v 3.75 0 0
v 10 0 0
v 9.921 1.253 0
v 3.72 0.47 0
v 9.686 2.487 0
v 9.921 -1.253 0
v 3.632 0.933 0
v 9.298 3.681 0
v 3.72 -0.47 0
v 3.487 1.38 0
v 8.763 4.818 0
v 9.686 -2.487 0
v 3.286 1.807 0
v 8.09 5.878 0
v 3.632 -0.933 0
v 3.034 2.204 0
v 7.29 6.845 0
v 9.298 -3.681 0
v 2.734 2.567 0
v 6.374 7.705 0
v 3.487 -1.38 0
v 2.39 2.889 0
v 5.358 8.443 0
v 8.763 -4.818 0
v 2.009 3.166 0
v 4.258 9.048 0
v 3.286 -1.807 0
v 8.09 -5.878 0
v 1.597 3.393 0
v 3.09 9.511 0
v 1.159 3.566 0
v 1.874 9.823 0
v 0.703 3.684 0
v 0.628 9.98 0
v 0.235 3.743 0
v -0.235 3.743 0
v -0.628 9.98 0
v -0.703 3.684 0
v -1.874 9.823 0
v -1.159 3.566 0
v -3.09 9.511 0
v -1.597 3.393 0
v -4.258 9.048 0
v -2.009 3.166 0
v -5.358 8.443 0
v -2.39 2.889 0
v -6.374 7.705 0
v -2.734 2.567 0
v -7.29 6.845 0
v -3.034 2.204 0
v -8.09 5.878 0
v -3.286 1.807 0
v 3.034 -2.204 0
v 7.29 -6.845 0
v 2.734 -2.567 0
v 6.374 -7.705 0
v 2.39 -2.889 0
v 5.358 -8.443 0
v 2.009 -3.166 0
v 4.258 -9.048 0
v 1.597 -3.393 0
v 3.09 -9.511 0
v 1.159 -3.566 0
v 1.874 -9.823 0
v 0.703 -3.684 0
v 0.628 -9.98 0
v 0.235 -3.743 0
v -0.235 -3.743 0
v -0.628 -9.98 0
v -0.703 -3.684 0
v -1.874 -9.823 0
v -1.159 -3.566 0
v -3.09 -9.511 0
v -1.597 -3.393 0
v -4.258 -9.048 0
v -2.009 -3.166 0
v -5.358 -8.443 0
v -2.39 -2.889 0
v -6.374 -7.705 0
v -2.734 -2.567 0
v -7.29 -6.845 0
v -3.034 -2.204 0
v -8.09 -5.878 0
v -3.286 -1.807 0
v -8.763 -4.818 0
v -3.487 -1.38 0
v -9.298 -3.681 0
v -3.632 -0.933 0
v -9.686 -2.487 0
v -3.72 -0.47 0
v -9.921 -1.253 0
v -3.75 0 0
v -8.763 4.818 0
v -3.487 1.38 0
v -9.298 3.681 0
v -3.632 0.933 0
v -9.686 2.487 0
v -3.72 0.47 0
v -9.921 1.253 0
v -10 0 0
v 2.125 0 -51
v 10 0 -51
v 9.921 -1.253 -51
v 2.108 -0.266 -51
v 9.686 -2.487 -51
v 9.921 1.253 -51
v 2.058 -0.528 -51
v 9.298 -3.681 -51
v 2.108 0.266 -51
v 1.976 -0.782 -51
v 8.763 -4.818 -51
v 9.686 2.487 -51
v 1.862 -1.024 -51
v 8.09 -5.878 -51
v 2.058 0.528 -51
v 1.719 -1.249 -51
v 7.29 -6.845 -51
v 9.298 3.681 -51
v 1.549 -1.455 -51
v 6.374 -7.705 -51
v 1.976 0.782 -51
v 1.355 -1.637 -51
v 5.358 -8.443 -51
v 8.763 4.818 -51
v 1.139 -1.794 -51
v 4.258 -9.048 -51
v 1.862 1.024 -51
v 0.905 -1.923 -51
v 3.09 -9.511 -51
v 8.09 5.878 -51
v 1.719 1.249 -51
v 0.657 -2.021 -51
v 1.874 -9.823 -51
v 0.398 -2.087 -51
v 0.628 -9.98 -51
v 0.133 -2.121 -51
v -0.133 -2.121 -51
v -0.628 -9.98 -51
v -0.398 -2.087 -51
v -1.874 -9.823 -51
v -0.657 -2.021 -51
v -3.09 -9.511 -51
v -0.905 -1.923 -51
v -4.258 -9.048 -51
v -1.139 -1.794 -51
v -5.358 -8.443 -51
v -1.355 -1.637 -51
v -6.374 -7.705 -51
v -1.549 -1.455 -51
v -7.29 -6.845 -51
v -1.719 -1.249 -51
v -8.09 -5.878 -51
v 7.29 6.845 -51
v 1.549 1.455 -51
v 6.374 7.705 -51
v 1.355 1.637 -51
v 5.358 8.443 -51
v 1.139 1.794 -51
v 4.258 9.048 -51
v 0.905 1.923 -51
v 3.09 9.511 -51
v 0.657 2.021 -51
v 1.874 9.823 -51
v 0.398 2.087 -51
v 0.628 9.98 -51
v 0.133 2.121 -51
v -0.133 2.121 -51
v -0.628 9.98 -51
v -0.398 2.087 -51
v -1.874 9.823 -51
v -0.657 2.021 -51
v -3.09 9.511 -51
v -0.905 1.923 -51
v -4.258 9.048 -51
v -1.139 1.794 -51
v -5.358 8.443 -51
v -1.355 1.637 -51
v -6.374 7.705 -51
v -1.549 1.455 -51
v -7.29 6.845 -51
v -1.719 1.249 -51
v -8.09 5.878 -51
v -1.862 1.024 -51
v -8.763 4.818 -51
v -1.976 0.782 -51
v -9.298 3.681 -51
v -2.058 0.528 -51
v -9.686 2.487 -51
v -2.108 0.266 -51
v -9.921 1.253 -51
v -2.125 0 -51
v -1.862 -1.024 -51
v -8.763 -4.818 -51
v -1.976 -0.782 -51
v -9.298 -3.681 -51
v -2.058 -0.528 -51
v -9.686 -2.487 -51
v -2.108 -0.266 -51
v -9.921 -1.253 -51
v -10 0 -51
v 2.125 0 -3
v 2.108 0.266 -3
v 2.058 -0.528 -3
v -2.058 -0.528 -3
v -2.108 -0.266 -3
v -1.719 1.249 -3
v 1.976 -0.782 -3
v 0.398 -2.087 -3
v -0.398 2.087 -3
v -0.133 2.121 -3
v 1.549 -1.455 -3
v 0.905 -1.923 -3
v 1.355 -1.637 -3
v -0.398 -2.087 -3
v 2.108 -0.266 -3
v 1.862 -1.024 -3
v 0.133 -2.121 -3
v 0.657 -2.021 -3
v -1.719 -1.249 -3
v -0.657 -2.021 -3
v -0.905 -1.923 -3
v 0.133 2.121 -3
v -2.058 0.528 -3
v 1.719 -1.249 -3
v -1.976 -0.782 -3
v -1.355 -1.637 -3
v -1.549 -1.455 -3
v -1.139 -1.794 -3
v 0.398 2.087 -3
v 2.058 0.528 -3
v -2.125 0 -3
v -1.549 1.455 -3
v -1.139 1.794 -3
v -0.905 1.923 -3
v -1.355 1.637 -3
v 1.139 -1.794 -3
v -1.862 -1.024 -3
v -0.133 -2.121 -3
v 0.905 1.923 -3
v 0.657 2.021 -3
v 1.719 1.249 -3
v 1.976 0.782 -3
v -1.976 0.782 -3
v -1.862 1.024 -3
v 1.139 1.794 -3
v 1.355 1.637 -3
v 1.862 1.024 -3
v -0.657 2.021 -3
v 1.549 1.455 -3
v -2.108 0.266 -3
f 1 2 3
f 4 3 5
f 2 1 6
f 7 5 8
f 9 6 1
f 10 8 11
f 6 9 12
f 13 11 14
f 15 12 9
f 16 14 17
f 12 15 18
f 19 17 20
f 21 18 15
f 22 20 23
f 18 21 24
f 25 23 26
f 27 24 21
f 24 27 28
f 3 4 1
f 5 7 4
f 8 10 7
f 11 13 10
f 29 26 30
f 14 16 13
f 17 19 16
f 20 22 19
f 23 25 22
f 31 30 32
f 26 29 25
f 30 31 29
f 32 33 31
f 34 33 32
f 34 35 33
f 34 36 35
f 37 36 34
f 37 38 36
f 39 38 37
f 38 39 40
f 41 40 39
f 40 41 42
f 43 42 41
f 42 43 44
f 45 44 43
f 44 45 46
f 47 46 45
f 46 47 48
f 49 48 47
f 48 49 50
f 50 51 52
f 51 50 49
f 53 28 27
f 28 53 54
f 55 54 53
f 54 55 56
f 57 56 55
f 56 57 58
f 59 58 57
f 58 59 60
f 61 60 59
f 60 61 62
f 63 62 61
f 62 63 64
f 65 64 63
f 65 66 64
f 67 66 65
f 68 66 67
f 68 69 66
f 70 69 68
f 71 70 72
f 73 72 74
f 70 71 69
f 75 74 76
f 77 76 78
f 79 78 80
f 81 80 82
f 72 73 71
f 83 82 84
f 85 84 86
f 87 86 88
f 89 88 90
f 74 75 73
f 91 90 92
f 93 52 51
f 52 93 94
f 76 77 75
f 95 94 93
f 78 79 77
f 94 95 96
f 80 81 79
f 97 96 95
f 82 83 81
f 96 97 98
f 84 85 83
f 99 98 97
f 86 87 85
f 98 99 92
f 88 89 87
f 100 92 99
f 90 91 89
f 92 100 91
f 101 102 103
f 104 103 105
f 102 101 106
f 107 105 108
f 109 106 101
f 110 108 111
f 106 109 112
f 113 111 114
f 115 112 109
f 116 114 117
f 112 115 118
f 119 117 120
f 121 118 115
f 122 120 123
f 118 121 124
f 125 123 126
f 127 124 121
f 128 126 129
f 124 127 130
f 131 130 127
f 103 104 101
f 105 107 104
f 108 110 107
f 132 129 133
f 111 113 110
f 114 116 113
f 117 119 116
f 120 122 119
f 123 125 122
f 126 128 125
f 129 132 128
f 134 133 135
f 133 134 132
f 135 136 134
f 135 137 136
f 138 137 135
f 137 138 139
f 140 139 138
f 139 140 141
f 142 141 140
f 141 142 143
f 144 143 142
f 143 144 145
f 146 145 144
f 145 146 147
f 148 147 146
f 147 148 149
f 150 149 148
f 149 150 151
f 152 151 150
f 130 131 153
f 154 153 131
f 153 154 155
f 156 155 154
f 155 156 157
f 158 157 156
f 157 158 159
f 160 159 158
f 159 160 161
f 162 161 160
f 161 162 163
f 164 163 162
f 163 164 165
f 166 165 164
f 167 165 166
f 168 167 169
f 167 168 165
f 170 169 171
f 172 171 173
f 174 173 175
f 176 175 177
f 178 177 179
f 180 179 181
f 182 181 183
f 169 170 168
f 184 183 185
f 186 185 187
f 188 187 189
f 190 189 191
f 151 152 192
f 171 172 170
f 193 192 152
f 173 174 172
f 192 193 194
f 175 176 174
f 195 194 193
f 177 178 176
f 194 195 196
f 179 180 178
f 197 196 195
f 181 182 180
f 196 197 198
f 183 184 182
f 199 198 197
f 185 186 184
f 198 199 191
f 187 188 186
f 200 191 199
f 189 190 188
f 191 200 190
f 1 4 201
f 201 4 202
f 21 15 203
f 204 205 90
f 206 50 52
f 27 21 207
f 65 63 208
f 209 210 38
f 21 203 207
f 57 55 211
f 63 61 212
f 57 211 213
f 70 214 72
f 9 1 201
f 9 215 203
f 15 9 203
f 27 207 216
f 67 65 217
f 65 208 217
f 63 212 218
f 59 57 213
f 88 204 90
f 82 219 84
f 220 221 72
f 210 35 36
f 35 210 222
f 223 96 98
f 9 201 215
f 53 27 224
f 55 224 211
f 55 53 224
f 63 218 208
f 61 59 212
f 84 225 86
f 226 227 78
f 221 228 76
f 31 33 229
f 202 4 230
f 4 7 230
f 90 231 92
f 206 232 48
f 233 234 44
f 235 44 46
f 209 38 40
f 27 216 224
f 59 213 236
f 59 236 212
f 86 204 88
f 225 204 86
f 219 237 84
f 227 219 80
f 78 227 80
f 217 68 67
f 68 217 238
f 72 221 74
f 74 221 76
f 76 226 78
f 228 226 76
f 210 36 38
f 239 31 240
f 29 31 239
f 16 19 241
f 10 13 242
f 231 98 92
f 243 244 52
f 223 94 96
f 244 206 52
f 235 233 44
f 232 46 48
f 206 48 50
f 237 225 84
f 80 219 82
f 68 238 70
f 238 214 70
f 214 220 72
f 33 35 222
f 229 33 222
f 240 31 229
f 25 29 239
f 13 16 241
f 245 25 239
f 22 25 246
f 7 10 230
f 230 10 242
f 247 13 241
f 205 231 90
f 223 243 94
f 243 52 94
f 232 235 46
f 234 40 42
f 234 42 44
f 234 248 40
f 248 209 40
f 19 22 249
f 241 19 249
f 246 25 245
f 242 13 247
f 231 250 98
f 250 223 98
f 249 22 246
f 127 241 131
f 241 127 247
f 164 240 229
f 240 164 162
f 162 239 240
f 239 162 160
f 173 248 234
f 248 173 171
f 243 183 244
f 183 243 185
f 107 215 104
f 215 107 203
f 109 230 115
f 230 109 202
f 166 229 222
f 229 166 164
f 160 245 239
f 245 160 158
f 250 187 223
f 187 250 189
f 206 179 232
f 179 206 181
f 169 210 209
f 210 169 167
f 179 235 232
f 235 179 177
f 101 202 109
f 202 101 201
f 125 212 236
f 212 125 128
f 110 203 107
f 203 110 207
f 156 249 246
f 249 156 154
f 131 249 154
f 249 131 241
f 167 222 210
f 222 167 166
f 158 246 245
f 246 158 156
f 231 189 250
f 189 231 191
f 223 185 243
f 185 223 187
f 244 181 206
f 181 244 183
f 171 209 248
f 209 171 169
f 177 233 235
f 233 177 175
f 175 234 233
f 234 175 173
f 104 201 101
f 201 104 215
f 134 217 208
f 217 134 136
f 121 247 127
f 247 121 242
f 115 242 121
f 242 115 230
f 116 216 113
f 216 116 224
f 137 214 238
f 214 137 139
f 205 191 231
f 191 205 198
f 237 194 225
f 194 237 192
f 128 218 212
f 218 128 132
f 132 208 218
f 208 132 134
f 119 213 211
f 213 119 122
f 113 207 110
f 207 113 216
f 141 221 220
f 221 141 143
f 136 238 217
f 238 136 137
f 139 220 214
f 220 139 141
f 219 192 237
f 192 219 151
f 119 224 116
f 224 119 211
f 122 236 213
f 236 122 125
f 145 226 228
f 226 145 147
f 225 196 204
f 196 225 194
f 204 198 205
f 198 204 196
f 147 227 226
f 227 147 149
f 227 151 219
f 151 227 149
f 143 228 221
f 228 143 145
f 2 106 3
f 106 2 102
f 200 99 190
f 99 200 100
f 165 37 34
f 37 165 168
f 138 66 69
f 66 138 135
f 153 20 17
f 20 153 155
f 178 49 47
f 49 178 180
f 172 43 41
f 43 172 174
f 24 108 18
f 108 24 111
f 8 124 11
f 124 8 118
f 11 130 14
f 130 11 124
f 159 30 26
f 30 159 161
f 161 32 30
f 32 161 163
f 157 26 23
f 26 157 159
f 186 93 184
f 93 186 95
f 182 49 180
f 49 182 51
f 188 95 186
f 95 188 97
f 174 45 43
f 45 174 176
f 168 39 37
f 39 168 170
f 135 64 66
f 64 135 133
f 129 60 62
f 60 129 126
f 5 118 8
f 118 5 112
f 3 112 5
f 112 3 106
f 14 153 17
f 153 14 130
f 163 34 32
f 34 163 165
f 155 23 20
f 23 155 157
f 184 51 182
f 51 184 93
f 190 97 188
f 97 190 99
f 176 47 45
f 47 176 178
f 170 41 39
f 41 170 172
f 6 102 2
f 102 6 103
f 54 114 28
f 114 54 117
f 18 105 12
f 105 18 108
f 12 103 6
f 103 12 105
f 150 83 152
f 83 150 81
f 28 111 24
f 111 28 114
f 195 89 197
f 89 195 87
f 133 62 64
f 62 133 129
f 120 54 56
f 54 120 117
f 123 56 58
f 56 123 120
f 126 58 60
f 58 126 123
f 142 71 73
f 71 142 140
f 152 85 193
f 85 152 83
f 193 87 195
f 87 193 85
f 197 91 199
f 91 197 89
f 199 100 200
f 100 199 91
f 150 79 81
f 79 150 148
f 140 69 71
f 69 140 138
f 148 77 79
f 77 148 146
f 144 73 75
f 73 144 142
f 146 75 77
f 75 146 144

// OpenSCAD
$fn = 50;


difference() {
	union() {
		translate(v = [0, 0, -51.0000000000]) {
			cylinder(h = 51, r = 10.0000000000);
		}
		cylinder(h = 0, r = 20.0000000000);
	}
	union() {
		translate(v = [0, 0, 0]) {
			rotate(a = [0, 0, 0]) {
				difference() {
					union() {
						#translate(v = [0, 0, -51.0000000000]) {
							cylinder(h = 51, r = 2.0000000000);
						}
						#translate(v = [0, 0, -3]) {
							cylinder(h = 3, r = 10.0000000000, r1 = 2.1250000000, r2 = 3.7500000000);
						}
						#translate(v = [0, 0, -51.0000000000]) {
							cylinder(h = 51, r = 2.1250000000);
						}
						#translate(v = [0, 0, -51.0000000000]) {
							cylinder(h = 51, r = 2.0000000000);
						}
					}
					union();
				}
			}
		}
	}
}
